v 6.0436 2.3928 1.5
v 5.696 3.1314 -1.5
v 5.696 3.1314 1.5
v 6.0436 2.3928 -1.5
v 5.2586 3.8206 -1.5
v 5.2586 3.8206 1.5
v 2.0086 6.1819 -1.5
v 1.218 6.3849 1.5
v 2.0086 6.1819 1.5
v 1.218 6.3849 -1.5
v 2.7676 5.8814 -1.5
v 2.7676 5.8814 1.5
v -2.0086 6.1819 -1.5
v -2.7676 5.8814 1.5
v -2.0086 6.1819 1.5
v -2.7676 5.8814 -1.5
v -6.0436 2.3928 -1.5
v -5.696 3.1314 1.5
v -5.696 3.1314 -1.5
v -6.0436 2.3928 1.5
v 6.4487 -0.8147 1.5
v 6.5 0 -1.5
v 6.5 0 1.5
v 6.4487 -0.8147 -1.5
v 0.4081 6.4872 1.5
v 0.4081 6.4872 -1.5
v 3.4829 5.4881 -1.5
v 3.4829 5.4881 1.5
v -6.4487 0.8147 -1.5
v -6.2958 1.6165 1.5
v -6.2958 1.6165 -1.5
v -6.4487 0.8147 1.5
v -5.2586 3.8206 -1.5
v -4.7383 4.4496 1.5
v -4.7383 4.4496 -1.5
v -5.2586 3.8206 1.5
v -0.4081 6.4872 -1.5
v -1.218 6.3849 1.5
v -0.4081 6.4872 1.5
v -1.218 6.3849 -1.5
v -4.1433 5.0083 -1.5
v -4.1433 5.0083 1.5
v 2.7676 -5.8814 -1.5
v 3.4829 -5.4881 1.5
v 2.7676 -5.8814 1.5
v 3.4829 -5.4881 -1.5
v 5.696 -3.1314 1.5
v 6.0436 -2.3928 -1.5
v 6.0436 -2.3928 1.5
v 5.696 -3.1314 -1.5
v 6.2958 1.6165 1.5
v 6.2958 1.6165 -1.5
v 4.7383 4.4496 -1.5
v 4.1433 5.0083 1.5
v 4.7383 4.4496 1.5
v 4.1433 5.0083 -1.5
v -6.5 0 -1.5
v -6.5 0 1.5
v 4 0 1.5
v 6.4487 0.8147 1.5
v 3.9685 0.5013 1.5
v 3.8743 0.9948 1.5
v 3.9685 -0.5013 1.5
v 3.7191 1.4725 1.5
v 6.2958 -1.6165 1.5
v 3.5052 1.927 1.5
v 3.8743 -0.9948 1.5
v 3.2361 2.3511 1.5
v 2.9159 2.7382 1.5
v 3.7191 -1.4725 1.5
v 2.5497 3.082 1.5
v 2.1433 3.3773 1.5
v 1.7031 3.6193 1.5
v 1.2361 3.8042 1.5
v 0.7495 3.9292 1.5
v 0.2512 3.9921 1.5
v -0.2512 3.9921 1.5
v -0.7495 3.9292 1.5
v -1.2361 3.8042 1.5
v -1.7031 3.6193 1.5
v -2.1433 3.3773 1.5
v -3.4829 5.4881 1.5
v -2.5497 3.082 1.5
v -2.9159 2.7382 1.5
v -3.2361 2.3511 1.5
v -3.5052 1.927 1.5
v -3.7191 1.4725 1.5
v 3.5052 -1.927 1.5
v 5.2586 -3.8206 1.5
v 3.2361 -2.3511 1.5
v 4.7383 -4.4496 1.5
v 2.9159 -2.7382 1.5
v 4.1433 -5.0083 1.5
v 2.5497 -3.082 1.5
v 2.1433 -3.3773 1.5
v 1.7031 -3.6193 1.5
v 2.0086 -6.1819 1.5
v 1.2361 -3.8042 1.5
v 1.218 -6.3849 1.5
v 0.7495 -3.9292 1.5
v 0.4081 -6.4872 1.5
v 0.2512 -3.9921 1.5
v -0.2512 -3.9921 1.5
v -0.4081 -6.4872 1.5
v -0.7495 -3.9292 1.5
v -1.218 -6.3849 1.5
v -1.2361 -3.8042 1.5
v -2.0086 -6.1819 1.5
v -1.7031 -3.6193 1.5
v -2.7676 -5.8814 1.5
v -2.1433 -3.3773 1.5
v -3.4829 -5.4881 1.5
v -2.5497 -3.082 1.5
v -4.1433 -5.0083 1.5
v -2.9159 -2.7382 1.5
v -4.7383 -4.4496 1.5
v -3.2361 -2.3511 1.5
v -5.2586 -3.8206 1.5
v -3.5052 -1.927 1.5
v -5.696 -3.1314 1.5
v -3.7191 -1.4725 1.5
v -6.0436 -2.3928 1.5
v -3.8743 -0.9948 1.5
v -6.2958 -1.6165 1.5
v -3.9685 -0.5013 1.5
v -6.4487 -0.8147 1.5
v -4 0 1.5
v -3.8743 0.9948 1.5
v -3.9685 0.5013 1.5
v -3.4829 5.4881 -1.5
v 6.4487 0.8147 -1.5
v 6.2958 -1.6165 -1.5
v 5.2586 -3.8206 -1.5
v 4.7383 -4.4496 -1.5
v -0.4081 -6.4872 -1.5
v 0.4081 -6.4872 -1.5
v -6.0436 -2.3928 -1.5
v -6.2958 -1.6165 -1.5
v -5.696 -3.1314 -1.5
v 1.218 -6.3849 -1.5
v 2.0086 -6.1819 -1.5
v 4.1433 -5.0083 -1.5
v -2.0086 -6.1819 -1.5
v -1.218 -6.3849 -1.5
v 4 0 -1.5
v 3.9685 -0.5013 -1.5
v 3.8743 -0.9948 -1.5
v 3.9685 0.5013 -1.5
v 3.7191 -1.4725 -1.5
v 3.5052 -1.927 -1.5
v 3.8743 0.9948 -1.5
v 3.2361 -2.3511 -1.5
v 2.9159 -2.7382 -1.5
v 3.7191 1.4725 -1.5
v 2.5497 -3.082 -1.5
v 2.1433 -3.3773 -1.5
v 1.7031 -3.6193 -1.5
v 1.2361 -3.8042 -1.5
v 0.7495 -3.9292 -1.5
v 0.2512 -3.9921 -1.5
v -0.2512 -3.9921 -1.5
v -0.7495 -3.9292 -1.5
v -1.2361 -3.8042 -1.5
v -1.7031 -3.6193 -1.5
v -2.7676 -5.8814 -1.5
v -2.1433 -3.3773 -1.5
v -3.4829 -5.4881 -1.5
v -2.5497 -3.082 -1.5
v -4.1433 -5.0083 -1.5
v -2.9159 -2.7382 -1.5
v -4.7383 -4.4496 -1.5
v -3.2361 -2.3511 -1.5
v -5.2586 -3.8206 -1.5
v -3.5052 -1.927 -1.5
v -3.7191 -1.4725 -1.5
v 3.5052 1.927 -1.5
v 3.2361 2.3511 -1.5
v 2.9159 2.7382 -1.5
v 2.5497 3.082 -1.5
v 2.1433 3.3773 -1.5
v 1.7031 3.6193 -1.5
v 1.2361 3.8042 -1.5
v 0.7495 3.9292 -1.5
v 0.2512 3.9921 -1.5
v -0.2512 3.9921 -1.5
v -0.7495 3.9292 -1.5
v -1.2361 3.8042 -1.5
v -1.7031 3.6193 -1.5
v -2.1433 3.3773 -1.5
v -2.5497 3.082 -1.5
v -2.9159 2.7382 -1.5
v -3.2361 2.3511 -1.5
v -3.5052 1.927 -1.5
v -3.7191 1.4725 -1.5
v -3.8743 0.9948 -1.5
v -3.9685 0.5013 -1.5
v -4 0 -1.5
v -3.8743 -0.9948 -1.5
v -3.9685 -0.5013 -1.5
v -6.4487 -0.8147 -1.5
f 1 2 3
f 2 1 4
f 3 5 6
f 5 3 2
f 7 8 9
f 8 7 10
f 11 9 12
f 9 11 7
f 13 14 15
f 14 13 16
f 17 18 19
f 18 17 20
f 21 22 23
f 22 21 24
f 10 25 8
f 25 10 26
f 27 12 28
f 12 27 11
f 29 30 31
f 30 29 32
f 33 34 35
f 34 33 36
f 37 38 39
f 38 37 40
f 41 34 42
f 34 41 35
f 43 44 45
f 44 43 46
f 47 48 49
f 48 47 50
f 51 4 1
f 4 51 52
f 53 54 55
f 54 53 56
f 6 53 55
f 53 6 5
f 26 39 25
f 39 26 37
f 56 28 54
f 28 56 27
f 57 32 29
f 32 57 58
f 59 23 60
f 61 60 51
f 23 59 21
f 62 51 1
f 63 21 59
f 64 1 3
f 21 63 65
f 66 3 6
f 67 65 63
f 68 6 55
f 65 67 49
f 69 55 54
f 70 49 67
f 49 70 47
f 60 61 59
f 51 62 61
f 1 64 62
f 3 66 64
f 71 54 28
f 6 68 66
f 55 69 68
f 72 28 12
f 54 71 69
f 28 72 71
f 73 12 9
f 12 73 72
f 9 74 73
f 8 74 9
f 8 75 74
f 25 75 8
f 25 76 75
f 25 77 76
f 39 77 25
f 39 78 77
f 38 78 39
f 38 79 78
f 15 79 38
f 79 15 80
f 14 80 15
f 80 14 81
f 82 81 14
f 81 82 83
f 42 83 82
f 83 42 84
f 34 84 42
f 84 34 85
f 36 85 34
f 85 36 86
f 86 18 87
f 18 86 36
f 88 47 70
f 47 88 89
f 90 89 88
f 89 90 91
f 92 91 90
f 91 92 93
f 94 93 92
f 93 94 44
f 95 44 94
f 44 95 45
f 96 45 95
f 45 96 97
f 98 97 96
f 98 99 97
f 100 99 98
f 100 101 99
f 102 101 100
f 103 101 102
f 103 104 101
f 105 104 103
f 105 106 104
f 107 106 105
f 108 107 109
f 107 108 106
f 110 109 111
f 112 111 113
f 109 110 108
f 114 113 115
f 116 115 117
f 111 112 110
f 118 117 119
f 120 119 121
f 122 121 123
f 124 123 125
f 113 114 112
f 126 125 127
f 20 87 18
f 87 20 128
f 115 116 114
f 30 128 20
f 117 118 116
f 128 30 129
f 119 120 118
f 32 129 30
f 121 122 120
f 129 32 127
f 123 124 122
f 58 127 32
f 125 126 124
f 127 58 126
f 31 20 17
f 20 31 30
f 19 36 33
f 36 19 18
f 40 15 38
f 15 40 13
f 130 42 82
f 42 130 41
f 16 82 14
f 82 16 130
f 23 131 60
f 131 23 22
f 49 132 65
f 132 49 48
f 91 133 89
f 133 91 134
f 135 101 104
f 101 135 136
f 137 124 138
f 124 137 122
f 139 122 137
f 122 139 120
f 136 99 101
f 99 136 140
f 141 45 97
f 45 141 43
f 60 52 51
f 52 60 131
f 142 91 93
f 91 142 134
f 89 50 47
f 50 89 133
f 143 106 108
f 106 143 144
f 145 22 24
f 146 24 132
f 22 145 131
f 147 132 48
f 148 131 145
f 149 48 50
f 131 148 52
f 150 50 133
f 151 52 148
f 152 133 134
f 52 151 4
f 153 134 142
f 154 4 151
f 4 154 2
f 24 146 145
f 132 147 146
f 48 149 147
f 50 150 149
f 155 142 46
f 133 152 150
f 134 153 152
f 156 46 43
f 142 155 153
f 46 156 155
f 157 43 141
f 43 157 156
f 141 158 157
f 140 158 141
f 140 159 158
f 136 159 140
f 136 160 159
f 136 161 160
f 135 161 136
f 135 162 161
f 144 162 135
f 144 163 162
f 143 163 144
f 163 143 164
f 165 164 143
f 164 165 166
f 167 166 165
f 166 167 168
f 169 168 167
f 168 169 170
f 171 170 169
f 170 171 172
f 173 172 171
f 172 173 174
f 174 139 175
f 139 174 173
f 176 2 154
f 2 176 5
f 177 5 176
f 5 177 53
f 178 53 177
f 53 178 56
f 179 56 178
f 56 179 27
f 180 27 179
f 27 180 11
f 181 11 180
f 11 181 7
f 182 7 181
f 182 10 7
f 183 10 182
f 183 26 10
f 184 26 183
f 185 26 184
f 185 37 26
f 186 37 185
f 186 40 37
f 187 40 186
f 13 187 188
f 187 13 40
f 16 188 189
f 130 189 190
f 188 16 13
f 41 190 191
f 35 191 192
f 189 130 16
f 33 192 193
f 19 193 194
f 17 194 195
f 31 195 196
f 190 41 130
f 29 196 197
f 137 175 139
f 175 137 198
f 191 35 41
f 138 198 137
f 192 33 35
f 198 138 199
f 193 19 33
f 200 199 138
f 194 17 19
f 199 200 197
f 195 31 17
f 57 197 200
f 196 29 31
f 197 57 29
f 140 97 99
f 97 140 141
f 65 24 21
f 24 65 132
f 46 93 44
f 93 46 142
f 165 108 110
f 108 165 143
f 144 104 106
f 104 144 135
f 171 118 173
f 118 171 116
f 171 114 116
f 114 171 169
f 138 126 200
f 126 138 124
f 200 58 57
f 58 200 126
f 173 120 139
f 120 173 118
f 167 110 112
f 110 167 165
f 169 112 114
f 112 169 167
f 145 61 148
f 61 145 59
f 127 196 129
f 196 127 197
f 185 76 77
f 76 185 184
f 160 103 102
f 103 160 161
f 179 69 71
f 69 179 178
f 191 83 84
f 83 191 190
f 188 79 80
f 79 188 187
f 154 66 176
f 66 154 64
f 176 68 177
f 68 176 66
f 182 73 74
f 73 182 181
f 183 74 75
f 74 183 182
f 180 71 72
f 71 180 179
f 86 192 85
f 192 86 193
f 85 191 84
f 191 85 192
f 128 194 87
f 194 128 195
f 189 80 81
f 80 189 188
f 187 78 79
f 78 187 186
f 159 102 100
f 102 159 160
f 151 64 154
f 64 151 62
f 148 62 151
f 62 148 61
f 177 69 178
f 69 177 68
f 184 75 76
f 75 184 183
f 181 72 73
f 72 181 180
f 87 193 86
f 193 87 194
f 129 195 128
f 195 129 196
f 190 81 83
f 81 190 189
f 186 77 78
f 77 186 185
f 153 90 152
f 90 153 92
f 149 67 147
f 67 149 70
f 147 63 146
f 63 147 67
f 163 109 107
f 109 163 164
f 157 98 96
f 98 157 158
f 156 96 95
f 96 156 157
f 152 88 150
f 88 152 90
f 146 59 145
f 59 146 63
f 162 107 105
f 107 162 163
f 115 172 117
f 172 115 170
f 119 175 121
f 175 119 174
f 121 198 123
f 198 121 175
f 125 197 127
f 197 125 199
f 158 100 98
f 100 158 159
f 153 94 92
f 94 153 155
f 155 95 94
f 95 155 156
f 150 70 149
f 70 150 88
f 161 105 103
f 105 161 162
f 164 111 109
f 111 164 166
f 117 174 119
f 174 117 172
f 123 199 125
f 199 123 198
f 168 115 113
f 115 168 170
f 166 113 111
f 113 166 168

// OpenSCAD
$fn = 50;


difference() {
	union() {
		translate(v = [0, 0, -1.5000000000]) {
			cylinder(h = 3, r = 6.5000000000);
		}
	}
	union() {
		translate(v = [0, 0, -100.0000000000]) {
			cylinder(h = 200, r = 4);
		}
	}
}
